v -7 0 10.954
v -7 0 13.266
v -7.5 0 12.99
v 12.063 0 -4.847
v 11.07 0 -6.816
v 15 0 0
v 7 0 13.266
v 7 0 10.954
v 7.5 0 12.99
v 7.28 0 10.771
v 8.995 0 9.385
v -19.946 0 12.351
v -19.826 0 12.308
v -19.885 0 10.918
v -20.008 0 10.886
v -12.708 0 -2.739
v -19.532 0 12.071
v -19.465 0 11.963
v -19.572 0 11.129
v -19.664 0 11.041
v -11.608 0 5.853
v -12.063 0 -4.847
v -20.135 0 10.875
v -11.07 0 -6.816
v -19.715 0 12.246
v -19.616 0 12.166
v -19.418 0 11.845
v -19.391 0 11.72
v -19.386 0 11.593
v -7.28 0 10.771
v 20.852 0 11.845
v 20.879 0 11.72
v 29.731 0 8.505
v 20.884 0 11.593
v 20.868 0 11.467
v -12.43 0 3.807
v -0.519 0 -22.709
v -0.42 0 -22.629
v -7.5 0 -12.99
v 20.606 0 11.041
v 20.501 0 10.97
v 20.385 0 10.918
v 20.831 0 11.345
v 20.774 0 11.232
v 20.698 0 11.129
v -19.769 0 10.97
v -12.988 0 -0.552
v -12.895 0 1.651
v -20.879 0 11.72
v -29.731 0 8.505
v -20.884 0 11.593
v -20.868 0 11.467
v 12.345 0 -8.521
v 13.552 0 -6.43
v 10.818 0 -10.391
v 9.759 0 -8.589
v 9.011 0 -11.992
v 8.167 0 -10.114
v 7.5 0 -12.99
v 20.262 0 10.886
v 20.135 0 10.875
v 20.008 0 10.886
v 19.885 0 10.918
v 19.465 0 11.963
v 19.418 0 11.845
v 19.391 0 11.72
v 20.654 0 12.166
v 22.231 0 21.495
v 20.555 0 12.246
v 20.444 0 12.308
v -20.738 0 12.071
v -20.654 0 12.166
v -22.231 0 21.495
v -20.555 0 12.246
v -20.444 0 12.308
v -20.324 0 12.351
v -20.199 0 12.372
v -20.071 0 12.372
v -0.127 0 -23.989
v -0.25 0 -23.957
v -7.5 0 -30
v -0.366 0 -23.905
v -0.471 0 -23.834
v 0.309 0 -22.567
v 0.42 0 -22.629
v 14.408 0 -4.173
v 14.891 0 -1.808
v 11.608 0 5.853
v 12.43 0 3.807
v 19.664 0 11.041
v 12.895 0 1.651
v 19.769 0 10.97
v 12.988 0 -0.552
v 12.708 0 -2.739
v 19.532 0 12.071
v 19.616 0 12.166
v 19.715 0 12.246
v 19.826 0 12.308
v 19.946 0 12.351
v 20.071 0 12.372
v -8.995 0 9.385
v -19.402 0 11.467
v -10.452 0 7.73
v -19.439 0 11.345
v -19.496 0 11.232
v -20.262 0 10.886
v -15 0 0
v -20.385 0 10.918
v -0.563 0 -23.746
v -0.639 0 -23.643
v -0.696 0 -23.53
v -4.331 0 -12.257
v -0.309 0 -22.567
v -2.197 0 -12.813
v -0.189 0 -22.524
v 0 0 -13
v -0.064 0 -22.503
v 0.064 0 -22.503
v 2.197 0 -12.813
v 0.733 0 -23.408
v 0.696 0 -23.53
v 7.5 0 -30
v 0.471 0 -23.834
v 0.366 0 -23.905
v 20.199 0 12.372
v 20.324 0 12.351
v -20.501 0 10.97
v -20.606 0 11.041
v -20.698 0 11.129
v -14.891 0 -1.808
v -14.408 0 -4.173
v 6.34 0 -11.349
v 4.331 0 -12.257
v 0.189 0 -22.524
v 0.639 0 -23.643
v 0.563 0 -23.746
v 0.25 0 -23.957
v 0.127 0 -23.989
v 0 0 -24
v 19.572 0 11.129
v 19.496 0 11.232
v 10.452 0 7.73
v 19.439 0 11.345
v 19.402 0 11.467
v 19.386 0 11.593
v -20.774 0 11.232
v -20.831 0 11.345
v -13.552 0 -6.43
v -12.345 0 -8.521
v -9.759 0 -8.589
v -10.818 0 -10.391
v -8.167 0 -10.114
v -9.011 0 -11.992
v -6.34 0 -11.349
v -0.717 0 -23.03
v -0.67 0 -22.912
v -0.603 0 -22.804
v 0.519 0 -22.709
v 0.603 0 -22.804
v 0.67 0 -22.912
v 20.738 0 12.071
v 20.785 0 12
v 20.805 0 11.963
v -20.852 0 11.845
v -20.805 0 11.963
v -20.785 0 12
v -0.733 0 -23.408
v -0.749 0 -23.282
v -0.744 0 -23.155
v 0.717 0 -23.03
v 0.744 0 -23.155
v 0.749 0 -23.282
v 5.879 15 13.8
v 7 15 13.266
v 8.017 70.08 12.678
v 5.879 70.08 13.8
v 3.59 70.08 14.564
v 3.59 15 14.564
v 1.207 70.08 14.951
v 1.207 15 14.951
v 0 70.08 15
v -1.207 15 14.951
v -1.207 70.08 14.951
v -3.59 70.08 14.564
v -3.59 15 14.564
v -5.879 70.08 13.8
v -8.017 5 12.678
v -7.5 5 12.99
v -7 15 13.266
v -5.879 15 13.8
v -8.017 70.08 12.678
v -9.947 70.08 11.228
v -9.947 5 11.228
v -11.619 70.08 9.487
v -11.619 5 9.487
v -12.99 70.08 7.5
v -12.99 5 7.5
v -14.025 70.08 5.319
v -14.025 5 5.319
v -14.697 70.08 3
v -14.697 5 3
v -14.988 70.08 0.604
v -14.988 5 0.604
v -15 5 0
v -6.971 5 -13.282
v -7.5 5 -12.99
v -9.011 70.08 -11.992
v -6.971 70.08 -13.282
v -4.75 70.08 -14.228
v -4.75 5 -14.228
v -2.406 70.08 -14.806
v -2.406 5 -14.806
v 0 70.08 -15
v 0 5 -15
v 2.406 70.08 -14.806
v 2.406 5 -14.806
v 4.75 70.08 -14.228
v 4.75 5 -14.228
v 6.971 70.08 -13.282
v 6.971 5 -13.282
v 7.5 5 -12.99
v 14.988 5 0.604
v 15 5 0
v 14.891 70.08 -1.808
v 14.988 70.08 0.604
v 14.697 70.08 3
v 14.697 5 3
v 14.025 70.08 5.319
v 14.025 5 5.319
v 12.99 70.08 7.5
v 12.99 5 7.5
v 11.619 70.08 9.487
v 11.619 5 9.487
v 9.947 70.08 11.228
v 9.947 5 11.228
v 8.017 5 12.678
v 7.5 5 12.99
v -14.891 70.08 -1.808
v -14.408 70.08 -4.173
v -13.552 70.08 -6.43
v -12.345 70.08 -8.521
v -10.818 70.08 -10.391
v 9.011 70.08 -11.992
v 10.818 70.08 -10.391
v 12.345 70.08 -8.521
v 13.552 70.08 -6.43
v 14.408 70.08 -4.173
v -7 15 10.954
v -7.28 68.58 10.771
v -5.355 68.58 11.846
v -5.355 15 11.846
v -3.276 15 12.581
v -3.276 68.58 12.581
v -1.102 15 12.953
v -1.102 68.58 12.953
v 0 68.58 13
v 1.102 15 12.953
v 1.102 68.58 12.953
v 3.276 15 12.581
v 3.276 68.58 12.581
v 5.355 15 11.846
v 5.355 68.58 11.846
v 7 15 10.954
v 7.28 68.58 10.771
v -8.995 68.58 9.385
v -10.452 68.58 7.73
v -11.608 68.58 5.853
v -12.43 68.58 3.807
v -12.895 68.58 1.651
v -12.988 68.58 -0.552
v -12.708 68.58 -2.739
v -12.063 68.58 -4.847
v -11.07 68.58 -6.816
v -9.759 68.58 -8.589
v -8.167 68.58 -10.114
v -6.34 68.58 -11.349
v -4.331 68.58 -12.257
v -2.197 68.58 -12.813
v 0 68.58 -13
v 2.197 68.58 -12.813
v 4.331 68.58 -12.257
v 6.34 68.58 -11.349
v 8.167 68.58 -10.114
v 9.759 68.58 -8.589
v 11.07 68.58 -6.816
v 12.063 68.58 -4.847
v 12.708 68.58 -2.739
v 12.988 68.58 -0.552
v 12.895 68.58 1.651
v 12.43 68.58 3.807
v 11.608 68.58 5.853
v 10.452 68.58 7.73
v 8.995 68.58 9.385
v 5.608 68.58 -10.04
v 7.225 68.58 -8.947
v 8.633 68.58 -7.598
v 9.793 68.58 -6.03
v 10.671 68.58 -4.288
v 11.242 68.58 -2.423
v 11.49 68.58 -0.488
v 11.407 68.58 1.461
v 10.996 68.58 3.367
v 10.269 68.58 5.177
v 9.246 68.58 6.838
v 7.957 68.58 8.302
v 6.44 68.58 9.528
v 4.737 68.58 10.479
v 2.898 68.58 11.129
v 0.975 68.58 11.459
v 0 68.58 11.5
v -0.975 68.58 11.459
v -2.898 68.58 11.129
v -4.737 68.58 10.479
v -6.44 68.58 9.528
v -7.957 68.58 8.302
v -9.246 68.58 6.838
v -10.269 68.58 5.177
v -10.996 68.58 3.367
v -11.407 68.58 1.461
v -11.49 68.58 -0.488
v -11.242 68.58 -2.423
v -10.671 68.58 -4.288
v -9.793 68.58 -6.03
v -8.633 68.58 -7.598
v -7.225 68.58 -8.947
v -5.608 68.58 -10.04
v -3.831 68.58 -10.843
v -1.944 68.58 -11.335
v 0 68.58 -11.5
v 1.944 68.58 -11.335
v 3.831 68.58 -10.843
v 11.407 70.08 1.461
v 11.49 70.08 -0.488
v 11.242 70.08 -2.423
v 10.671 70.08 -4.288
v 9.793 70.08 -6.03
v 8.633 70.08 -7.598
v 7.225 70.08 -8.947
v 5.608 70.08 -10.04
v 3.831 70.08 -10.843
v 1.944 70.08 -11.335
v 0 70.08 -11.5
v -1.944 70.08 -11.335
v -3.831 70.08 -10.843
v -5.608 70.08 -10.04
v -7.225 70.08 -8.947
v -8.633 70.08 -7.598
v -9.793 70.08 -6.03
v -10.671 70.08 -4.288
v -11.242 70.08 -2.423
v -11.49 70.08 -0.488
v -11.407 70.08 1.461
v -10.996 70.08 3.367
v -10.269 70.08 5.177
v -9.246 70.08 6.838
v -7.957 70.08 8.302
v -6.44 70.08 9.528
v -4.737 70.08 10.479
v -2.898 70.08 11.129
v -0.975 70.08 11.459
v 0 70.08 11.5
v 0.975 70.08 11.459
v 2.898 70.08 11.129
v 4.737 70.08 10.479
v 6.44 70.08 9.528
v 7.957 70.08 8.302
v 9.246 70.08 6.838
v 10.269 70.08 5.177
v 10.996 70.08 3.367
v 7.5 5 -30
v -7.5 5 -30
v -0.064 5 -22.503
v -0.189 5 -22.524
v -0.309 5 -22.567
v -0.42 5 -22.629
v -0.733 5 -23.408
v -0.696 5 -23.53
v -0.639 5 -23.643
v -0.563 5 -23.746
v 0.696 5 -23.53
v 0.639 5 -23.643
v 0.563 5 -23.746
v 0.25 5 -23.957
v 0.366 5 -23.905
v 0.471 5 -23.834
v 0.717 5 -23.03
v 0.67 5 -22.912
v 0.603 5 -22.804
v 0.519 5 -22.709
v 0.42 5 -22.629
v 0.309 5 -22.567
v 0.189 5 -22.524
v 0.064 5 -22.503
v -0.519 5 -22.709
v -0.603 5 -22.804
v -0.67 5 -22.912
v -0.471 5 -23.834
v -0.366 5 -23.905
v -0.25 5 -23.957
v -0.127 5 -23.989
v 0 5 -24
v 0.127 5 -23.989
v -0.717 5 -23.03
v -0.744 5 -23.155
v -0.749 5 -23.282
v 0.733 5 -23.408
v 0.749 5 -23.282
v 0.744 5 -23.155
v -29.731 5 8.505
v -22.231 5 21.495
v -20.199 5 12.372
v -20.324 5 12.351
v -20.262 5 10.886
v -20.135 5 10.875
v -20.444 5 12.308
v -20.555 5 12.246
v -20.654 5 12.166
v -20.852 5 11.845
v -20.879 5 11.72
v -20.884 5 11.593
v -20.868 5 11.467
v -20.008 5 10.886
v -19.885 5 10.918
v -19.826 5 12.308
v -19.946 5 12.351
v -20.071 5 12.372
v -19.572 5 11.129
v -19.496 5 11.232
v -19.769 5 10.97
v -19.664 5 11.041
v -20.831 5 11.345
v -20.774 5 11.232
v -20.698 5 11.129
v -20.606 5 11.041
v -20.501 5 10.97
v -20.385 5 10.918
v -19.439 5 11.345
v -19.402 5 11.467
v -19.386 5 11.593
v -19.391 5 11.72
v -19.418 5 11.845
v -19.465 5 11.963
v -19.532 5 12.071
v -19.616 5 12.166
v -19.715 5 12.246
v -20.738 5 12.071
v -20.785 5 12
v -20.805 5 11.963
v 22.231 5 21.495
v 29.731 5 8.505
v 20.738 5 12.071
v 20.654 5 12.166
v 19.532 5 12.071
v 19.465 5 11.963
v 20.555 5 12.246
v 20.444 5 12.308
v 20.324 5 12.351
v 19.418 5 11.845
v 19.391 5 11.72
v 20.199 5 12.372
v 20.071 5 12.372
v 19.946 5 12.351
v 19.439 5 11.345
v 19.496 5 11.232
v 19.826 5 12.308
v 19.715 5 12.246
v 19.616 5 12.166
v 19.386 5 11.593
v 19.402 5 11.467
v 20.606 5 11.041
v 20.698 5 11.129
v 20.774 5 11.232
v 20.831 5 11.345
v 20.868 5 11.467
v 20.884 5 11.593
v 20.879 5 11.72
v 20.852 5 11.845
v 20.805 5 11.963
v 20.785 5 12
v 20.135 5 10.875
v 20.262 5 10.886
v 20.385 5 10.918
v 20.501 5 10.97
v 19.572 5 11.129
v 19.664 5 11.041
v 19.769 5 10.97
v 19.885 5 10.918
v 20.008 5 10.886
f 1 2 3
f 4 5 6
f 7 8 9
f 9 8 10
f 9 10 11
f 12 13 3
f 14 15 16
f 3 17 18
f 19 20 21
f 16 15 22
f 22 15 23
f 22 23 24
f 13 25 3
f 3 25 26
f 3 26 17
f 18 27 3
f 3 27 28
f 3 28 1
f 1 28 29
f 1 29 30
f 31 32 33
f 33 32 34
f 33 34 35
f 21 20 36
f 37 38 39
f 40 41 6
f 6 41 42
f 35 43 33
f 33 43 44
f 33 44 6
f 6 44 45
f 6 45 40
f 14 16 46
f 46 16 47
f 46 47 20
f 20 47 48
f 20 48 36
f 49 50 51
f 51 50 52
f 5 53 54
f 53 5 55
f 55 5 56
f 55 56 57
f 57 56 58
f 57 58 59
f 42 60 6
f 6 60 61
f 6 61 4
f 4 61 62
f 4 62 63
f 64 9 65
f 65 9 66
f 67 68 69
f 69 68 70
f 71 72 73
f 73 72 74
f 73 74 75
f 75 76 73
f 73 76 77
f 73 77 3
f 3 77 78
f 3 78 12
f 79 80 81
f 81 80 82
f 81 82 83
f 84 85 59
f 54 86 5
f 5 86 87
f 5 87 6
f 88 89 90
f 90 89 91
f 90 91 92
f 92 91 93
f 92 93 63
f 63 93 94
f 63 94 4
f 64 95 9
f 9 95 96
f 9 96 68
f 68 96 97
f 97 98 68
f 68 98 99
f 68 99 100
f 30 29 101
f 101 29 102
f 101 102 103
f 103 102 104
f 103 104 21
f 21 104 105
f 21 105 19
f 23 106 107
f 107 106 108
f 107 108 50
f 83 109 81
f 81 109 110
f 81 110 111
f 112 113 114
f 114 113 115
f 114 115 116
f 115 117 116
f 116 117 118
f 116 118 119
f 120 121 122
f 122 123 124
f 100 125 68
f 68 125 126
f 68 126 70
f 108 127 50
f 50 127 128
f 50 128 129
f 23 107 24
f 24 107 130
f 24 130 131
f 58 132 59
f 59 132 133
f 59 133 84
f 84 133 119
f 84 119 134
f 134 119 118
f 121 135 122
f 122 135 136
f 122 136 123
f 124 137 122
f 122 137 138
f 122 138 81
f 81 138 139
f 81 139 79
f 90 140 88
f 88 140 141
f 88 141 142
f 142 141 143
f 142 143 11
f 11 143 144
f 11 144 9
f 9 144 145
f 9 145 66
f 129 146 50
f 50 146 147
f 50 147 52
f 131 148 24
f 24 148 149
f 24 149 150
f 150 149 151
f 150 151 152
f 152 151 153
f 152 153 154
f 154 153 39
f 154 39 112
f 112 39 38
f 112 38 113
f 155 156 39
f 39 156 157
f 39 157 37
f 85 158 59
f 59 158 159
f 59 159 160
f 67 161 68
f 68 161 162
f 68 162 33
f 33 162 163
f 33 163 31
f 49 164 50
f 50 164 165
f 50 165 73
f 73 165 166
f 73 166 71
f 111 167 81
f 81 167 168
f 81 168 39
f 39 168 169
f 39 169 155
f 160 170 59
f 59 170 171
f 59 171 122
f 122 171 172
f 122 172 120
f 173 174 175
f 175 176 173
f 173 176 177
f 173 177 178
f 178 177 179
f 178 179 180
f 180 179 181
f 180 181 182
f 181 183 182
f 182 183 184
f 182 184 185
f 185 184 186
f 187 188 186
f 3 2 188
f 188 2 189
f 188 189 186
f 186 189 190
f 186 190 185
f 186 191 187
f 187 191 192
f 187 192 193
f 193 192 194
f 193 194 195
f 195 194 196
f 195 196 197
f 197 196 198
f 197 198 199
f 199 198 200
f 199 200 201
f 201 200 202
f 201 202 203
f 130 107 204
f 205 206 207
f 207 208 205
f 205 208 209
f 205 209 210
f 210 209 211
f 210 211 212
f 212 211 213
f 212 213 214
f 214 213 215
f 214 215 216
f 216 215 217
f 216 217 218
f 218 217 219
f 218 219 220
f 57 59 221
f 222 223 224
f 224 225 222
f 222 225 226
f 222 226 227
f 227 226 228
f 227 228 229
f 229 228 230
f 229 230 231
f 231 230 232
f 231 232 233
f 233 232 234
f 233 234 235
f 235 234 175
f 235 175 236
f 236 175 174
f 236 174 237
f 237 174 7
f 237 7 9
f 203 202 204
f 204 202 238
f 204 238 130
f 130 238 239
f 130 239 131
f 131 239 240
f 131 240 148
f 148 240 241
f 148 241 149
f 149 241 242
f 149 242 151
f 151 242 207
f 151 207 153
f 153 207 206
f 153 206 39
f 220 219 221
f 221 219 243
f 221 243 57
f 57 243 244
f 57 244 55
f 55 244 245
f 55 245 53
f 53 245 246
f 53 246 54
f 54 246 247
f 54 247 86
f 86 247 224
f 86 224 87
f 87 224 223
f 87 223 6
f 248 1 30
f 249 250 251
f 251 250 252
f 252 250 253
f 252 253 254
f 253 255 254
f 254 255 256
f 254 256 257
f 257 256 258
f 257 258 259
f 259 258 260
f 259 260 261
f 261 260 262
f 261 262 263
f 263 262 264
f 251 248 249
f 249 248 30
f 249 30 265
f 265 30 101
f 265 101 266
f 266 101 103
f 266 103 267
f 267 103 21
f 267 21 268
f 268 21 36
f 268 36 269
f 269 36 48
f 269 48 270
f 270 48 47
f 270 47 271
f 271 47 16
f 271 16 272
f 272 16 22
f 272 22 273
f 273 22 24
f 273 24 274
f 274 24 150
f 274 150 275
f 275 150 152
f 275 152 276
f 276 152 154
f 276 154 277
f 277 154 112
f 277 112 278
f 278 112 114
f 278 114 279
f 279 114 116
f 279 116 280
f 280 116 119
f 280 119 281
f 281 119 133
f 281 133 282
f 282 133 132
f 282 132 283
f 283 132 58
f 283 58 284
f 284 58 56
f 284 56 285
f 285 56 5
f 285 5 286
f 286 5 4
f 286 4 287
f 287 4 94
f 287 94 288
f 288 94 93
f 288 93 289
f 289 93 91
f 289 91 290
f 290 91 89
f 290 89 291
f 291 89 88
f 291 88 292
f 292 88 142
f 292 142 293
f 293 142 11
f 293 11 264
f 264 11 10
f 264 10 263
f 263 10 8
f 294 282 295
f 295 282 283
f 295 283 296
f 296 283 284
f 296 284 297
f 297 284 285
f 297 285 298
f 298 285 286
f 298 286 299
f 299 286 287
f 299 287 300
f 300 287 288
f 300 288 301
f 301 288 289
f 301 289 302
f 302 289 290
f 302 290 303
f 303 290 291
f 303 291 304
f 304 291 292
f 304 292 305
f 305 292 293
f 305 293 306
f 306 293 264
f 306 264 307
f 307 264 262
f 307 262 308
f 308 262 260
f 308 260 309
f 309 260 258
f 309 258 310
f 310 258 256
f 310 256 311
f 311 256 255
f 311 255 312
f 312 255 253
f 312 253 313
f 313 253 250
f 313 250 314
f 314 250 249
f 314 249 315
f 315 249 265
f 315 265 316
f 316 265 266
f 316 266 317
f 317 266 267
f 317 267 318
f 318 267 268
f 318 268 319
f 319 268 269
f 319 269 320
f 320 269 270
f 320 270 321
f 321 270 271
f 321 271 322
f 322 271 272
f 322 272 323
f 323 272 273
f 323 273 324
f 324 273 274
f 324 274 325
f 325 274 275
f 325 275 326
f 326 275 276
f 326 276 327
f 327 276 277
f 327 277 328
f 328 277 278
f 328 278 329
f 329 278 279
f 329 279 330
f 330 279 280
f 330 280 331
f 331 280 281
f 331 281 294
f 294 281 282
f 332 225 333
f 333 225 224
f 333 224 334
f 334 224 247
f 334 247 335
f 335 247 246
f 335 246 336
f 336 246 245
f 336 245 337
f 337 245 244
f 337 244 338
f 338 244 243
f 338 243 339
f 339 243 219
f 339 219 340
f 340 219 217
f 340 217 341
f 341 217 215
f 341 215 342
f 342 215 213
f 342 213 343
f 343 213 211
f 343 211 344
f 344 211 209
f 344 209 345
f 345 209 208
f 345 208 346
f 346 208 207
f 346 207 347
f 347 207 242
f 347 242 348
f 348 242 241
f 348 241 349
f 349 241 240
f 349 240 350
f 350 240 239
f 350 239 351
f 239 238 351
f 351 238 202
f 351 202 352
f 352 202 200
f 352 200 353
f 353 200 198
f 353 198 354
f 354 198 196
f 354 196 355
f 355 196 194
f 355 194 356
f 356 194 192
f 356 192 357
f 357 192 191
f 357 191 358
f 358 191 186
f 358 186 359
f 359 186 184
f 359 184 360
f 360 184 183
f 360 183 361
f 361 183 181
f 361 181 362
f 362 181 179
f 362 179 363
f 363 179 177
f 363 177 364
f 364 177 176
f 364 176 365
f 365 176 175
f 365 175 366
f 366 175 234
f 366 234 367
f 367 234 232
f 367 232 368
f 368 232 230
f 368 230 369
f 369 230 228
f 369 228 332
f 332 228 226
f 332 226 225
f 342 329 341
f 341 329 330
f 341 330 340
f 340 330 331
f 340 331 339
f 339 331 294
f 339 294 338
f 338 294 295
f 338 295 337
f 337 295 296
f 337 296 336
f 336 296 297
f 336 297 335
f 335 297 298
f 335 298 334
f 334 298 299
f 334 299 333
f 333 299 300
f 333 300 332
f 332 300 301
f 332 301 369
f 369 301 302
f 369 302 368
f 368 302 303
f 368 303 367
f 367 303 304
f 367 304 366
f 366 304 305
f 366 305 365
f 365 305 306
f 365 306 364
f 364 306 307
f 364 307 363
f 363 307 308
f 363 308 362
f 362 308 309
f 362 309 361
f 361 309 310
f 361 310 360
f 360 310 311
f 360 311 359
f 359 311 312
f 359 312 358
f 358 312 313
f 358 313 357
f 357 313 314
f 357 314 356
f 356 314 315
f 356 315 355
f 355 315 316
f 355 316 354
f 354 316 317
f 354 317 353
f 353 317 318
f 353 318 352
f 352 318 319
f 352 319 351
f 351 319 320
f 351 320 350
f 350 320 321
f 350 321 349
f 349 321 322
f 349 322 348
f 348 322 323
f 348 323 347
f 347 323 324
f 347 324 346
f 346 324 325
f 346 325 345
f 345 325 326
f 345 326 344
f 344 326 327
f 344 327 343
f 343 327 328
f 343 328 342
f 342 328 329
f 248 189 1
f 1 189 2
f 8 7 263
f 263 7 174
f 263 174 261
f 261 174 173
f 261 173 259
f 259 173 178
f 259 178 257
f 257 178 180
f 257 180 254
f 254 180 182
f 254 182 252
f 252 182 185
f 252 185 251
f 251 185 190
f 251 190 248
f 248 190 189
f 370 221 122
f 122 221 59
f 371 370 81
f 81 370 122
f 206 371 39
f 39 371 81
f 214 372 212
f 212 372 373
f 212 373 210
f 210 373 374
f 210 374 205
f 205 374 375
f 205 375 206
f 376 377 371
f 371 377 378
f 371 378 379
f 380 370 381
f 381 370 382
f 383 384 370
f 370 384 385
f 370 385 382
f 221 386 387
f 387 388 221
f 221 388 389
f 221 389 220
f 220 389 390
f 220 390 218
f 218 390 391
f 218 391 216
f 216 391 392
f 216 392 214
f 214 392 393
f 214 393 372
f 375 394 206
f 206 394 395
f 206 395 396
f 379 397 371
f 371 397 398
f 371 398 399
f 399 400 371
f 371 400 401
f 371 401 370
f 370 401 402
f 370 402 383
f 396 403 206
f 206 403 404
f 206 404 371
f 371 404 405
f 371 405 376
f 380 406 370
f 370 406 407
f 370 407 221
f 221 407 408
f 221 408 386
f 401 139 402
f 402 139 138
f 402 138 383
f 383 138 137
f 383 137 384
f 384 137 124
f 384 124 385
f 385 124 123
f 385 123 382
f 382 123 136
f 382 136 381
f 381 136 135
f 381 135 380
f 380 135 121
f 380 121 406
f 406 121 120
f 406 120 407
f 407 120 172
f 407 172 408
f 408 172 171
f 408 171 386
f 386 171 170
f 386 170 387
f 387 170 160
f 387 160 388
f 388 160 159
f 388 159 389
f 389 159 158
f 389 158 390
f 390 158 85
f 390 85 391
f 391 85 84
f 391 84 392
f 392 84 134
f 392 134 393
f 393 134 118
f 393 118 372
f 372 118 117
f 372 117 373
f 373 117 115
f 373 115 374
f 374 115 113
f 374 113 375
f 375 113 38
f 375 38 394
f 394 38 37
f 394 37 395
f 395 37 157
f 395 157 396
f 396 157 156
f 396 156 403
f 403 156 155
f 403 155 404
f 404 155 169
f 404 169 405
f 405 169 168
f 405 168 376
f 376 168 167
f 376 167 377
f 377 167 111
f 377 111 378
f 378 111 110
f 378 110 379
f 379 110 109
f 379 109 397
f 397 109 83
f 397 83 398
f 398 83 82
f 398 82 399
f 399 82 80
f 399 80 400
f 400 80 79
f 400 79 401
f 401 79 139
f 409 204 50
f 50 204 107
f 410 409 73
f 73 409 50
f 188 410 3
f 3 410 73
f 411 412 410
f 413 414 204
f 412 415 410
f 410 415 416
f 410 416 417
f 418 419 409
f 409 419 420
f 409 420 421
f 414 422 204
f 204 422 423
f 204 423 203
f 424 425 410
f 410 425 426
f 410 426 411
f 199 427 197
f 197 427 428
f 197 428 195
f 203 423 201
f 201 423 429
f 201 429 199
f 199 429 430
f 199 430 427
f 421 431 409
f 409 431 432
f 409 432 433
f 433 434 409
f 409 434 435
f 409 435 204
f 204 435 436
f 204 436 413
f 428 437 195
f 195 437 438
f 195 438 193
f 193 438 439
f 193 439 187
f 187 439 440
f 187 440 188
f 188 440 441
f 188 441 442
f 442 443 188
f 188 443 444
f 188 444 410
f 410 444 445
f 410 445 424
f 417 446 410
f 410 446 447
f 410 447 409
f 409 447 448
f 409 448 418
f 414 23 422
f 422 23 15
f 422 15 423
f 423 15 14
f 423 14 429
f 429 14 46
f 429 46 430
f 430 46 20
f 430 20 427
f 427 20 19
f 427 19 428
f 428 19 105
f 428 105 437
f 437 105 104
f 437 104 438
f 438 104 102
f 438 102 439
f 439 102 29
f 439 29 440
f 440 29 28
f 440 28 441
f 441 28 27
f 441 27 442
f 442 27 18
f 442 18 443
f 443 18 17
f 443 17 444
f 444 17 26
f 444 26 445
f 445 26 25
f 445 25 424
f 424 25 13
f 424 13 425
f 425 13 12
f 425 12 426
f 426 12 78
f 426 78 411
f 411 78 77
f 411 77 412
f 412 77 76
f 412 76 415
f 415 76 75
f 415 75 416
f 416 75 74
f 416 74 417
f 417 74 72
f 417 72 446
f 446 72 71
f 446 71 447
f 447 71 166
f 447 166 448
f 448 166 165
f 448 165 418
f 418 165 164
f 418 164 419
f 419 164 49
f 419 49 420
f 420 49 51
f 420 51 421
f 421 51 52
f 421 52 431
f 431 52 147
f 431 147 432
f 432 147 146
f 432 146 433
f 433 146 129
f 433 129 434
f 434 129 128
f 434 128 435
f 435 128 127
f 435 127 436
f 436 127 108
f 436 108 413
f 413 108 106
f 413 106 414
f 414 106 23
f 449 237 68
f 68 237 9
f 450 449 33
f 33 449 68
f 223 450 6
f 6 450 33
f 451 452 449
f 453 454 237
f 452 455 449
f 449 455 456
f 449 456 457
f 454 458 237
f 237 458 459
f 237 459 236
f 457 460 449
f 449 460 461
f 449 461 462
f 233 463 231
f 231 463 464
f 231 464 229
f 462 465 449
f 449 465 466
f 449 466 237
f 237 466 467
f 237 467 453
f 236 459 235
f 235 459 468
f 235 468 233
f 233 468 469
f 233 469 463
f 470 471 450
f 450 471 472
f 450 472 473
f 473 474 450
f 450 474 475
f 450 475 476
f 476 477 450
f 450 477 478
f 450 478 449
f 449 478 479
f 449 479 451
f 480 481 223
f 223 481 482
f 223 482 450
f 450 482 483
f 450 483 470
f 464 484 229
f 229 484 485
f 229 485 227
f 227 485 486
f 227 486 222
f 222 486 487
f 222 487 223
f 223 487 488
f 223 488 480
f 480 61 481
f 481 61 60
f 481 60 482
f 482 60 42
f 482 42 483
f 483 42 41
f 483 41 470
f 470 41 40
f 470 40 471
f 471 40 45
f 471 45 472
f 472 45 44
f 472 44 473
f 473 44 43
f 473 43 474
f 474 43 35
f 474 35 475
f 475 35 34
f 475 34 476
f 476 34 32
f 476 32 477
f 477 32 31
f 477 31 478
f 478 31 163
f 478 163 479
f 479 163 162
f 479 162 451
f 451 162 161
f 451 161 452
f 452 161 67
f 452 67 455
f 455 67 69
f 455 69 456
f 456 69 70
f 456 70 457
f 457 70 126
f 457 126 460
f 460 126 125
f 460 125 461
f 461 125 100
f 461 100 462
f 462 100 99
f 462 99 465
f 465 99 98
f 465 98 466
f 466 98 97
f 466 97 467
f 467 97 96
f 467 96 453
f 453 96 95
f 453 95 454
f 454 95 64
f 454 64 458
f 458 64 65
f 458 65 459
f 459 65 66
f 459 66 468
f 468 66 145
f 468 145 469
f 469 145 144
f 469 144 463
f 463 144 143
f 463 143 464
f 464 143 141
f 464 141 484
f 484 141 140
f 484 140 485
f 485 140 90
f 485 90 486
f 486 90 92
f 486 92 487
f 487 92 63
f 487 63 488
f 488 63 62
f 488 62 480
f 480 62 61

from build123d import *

# Parameters (mm, degrees)
SKETCH1_R           = 15
SKETCH1_R_2         = 13
BOSS_EXTRUDE1_DEPTH = 68.58
SKETCH2_R           = 15
SKETCH2_R_2         = 11.5
BOSS_EXTRUDE2_DEPTH = 1.5
SKETCH3_W           = 14
SKETCH3_H           = 15.591369762
CUT_EXTRUDE1_DEPTH  = 15
SKETCH4_R           = 0.75
BOSS_EXTRUDE3_DEPTH = 5
CIRPATTERN1_COUNT   = 3


with BuildPart() as part:
    # Sketch1 → Boss-Extrude1 (new body)
    with BuildSketch(Plane(origin=(0, 0, 0), x_dir=(1, 0, 0), z_dir=(0, 1, 0))):
        with Locations(Location((0, 0, 0), (0, 0, 270))):
            Circle(SKETCH1_R)
        with Locations(Location((0, 0, 0), (0, 0, 270))):
            Circle(SKETCH1_R_2, mode=Mode.SUBTRACT)
    extrude(amount=BOSS_EXTRUDE1_DEPTH)

    # Sketch2 → Boss-Extrude2 (add)
    with BuildSketch(Plane(origin=(0, 68.58, 0), x_dir=(1, 0, 0), z_dir=(0, 1, 0))):
        with Locations(Location((0, 0, 0), (0, 0, 270))):
            Circle(SKETCH2_R)
        with Locations(Location((0, 0, 0), (0, 0, 270))):
            Circle(SKETCH2_R_2, mode=Mode.SUBTRACT)
    extrude(amount=BOSS_EXTRUDE2_DEPTH)

    # Sketch3 → Cut-Extrude1 (cut)
    with BuildSketch(Plane.XZ):
        with Locations((0, 7.795684881)):
            Rectangle(SKETCH3_W, SKETCH3_H)
    extrude(amount=-CUT_EXTRUDE1_DEPTH, mode=Mode.SUBTRACT)

    # Sketch4 → Boss-Extrude3 (add)
    with BuildSketch(Plane.XZ):
        with BuildLine():
            Line((-7.5, -12.990381057), (-7.5, -30))
            Line((-7.5, -30), (7.5, -30))
            Line((7.5, -30), (7.5, -12.990381057))
            ThreePointArc((7.5, -12.990381057), (0, -15), (-7.5, -12.990381057))
        make_face()
        with Locations(Location((0, -23.25, 0), (0, 0, 270))):
            Circle(SKETCH4_R, mode=Mode.SUBTRACT)
    boss_extrude3 = extrude(amount=-BOSS_EXTRUDE3_DEPTH)

    # CirPattern1: Boss-Extrude3 ×3 about axis
    cirpattern1_axis = Axis((0, 0, 0), (0, 1, 0))
    for i in range(1, CIRPATTERN1_COUNT):
        add(boss_extrude3.rotate(cirpattern1_axis, i * 360 / CIRPATTERN1_COUNT))


solid = part.part
